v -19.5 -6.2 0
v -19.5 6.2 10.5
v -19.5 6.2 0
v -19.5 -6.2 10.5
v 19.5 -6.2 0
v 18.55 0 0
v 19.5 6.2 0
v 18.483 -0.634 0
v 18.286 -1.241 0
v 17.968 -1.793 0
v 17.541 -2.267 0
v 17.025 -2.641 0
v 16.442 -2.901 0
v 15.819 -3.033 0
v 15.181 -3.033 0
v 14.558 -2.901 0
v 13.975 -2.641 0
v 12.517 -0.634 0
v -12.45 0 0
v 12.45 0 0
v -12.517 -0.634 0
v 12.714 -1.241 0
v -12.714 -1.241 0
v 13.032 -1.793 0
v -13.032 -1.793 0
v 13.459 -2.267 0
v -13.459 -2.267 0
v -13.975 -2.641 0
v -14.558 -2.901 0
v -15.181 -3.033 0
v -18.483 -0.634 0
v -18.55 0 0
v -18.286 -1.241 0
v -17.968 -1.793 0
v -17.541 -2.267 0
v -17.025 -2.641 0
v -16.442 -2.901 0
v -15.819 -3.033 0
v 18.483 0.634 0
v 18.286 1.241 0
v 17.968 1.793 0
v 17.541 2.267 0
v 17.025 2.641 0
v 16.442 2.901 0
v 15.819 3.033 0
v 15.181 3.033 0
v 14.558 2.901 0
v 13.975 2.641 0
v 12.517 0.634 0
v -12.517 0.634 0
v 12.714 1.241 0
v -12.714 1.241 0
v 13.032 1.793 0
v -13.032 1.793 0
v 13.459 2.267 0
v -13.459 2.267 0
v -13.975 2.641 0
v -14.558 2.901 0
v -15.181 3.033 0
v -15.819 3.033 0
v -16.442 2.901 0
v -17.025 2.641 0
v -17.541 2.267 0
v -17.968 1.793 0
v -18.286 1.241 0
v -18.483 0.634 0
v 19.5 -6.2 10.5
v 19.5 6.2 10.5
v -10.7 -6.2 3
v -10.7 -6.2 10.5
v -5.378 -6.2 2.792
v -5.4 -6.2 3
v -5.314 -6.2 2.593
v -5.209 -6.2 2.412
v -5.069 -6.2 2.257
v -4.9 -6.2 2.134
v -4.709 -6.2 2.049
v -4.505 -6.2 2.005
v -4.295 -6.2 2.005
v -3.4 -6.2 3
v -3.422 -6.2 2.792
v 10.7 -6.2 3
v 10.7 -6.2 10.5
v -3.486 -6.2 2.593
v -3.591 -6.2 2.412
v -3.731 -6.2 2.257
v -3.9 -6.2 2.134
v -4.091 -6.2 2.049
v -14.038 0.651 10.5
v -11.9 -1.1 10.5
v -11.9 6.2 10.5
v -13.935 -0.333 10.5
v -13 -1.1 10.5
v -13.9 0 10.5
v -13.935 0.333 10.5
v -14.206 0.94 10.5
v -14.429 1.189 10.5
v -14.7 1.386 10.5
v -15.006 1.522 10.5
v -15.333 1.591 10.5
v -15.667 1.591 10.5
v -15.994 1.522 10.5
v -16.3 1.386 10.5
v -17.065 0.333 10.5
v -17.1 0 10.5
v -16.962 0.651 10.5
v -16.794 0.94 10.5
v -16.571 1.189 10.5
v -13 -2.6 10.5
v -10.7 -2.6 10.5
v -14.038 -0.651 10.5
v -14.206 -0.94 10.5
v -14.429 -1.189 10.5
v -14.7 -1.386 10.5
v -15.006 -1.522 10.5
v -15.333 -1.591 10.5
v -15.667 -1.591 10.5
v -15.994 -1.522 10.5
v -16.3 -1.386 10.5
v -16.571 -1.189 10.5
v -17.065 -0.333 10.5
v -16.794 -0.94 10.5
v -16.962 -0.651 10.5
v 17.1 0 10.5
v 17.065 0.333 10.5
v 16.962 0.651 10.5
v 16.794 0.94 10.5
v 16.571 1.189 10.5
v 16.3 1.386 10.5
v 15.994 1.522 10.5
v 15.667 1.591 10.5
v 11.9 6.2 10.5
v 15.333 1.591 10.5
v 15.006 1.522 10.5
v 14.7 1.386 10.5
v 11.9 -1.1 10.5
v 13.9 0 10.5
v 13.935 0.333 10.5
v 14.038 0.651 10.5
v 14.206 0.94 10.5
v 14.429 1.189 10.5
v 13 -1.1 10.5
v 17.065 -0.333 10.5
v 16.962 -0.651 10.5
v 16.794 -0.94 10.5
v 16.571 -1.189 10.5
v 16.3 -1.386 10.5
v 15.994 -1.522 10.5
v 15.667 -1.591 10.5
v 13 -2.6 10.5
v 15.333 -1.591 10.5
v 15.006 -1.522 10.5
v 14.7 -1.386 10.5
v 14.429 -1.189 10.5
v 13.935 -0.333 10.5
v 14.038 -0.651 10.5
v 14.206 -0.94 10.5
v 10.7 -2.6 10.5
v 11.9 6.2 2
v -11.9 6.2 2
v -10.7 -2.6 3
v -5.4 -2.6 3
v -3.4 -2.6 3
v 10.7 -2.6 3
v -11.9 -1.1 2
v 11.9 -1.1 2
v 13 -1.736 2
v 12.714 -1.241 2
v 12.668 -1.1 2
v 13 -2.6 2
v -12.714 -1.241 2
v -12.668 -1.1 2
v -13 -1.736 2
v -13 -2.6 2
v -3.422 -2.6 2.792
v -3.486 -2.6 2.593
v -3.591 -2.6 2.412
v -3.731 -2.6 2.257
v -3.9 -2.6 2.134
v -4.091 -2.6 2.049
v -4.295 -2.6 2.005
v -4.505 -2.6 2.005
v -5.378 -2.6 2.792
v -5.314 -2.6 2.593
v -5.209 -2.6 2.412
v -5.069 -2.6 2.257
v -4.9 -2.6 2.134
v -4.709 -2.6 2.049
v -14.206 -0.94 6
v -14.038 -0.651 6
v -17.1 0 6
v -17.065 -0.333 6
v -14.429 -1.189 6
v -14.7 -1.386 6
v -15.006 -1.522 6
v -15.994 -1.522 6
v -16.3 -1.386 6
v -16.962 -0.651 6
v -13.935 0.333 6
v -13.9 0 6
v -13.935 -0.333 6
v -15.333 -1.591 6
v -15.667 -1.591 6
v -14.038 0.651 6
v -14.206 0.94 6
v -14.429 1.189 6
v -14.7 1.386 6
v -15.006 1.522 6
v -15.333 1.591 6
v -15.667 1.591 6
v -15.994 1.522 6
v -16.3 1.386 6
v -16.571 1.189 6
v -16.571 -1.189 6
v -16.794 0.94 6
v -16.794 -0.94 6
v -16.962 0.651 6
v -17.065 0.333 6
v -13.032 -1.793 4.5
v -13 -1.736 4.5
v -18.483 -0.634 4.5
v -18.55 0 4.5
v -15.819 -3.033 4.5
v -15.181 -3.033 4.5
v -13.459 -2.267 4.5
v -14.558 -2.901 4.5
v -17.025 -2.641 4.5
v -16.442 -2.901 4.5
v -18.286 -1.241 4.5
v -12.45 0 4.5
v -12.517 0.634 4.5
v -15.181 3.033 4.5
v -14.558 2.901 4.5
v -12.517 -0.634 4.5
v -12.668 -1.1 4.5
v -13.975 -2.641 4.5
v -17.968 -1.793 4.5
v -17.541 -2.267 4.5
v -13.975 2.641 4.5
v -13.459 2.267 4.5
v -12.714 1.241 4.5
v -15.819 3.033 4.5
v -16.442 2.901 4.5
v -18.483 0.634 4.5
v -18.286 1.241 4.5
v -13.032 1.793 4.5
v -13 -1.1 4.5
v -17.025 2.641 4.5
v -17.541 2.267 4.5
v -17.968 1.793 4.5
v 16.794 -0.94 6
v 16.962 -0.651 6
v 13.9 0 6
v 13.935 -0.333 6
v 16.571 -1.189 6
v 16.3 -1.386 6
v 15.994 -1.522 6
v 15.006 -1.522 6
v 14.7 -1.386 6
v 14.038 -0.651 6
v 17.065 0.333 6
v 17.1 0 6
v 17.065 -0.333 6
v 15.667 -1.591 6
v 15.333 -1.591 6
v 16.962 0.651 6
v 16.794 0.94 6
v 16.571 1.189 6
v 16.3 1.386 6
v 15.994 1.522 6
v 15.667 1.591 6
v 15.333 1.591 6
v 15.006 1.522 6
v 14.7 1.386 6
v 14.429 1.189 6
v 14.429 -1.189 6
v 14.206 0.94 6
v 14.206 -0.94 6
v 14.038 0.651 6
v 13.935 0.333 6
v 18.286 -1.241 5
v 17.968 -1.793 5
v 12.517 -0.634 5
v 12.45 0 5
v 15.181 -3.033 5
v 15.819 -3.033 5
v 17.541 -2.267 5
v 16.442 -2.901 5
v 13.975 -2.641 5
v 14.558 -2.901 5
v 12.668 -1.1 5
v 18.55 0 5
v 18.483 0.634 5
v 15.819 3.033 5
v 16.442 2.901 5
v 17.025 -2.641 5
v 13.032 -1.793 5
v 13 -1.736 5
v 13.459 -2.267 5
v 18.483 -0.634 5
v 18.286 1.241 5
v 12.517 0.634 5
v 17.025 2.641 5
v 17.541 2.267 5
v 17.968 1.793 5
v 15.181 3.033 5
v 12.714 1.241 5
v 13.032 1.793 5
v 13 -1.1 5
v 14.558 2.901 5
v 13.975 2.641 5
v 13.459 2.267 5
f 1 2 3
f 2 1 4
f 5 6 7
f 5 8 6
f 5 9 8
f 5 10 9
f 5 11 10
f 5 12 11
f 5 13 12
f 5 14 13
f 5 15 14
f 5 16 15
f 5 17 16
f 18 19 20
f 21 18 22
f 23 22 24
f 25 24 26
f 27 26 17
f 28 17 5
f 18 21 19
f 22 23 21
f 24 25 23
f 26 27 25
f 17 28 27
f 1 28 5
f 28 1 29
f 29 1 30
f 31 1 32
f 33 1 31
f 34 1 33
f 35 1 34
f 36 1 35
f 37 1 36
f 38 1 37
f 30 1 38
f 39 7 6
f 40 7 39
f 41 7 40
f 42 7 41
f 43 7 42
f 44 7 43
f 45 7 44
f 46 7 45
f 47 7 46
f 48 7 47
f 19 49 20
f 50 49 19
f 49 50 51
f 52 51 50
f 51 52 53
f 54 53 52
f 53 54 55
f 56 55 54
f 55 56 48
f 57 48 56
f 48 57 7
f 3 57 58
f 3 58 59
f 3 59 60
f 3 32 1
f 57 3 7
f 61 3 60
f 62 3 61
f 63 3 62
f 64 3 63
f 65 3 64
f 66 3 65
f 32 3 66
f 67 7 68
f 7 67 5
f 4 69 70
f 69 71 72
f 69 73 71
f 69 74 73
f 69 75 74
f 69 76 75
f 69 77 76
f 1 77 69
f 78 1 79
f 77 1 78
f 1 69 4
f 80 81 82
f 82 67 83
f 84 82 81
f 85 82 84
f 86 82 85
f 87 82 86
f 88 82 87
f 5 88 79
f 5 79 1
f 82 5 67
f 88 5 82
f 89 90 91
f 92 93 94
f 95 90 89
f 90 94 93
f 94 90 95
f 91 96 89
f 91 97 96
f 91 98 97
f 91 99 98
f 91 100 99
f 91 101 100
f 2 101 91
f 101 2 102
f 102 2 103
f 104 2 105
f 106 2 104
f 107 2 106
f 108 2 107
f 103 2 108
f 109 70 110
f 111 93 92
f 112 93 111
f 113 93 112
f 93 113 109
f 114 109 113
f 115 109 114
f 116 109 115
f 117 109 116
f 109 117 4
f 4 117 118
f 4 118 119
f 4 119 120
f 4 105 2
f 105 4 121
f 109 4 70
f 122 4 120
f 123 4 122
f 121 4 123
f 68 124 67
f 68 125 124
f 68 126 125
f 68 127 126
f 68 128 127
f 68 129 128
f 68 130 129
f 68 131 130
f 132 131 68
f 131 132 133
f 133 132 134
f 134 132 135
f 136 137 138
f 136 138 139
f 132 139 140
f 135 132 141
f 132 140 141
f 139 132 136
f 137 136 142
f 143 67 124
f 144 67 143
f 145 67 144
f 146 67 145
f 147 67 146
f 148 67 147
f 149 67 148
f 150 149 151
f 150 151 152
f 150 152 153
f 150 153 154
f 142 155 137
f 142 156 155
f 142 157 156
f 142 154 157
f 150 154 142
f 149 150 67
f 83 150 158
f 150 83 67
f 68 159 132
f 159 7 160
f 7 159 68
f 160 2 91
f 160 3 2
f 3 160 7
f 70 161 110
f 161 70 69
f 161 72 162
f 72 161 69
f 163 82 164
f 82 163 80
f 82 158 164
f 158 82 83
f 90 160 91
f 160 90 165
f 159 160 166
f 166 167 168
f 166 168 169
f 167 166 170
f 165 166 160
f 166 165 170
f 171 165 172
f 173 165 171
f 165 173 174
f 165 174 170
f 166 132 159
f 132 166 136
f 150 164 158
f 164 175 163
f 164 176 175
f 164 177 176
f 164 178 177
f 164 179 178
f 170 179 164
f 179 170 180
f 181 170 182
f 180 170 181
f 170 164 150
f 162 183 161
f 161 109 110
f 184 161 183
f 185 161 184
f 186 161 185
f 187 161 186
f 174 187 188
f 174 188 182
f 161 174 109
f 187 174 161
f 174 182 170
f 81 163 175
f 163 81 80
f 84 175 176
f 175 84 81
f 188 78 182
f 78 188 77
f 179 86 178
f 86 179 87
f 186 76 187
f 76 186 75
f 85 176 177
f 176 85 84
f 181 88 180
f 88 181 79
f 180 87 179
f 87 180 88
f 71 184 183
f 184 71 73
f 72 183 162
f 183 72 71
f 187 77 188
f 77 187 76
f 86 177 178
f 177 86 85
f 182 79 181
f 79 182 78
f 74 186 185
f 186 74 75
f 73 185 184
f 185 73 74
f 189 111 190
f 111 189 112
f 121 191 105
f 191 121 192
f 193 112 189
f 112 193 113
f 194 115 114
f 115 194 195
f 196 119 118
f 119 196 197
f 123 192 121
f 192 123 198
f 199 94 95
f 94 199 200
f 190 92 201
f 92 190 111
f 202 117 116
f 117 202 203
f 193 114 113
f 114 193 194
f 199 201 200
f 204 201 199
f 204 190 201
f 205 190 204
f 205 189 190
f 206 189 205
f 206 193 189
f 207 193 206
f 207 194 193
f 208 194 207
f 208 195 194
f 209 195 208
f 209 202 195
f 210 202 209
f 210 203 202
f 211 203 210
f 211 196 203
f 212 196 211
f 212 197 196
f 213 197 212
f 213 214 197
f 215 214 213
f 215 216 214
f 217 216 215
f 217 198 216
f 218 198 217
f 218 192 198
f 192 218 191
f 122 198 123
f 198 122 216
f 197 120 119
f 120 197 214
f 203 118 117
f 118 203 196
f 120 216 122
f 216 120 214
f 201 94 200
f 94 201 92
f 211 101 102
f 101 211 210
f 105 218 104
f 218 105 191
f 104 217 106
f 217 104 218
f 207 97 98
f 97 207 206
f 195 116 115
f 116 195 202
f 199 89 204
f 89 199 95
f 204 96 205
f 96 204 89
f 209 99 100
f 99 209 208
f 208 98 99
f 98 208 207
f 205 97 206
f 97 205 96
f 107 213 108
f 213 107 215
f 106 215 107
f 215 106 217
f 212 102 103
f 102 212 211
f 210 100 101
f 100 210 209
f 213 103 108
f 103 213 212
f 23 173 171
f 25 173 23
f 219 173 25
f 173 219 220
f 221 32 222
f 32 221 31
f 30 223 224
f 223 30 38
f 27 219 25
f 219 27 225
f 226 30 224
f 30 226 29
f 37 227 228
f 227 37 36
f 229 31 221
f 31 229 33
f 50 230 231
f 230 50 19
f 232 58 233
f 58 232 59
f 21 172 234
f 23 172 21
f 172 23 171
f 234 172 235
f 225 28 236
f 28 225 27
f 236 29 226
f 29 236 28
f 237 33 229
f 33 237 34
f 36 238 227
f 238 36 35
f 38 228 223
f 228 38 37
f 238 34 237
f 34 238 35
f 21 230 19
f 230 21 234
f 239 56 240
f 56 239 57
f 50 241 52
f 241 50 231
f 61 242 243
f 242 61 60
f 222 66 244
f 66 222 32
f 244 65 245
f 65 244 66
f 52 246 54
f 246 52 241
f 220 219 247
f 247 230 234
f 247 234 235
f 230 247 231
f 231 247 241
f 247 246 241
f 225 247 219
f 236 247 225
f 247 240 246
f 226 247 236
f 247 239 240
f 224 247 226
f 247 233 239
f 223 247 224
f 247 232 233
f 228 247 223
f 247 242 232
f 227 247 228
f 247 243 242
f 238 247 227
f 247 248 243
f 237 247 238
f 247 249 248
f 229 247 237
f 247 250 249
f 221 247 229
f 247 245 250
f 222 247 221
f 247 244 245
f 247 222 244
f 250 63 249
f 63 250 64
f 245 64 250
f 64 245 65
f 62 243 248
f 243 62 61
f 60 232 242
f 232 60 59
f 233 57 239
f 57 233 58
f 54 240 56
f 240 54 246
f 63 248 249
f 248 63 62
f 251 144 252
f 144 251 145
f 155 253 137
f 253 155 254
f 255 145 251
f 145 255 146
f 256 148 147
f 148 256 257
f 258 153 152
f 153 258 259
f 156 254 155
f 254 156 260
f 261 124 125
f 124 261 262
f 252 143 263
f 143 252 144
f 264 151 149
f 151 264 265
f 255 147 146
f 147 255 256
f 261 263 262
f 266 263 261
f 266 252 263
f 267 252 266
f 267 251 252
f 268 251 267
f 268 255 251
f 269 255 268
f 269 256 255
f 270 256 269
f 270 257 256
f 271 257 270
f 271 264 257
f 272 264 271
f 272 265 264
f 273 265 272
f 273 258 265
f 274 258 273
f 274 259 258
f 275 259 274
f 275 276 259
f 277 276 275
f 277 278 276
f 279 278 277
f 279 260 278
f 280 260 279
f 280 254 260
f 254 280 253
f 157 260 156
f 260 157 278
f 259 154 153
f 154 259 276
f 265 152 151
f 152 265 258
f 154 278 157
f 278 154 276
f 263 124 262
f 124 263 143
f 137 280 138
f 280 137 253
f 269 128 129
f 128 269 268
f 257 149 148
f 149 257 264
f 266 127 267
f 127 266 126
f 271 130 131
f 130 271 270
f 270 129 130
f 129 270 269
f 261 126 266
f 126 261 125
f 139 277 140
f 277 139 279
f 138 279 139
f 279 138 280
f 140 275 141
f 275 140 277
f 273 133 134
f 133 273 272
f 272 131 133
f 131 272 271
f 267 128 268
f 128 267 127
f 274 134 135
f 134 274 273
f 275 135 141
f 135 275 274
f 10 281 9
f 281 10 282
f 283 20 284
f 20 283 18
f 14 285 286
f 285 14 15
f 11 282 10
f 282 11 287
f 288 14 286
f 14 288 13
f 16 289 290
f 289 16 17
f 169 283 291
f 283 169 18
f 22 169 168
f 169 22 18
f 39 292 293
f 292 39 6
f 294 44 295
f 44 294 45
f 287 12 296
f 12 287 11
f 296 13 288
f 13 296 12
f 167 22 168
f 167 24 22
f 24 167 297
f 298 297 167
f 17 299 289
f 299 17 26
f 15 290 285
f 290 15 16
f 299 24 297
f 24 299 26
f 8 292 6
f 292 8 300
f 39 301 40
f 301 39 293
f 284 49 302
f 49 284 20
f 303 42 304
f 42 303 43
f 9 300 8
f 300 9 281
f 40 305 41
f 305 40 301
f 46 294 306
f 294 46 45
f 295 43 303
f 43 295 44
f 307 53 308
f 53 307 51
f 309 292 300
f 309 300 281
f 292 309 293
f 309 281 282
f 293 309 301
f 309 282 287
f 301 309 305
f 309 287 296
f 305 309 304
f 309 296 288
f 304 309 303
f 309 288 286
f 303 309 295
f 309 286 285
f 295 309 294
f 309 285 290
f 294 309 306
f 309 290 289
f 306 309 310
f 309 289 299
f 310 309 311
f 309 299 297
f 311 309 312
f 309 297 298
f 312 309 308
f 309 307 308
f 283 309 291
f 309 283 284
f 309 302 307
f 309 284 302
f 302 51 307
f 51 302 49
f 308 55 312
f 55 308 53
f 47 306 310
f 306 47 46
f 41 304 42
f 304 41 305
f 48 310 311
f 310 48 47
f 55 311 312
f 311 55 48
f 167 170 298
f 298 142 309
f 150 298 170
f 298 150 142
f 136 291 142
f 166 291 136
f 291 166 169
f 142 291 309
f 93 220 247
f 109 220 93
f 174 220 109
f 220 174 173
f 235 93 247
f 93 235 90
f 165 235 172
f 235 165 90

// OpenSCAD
// file: config.scad
/**
 * Глобальный конфигурационный файл
 */
// качество цилиндров
$fn=30;

// избегание совпадения граней
DELTA=0.1;

// толщина рамы
FRAME=15;
// main file
include <config.scad>
x=39;
x2=23.8;
y=12.4;
z=31;
h=2;
h2=8.5;
x3=1.5;
dw=6.5;
y3=1.0;
z2=h+h2;
d1=3.2;
d2=2.5;
y4=7;
d3=6.1;
z3=5;
delta=0.5;

dy=8.3;
dx=7.5;

module head_part07() {
translate([0,0,z2])rotate([180,0,0])
difference() {
	translate([0,0,h/2])
	difference() {
		translate([0,0,h2/2])cube([x,y,z2],true);
		translate([0,dy,(h2-h)/2-.1-1])cube([x2-2.4,y+1,h2+.2],true);
		translate([0,dy-y,(h2-h)/2-.1])cube([x2,y+1,h2+.2],true);
		translate([dx-x2/2,y,z2-h/2-3])rotate([90,0,0])cylinder(r=1,h=15);
	}
	translate([-z/2,0,-0.5]) {
		cylinder(z2-z3-0.5,r=d1/2);
		translate([0,0,z2-4])cylinder(h=z3,r=d3/2);
	}
	translate([z/2,0,-0.5]) {
		cylinder(z2-z3-0.5,r=d1/2);translate([0,0,z2+0.5-z3])cylinder(13,r=d3/2);
	}
	translate([x/2-dw-x3,dy-y+5.2,-h-delta])cube([x3,y3+delta,z2+delta]);
	translate([-x/2+dw,dy-y+5.2,-h-delta])cube([x3,y3+delta,z2+delta]);
}
}

head_part07();
